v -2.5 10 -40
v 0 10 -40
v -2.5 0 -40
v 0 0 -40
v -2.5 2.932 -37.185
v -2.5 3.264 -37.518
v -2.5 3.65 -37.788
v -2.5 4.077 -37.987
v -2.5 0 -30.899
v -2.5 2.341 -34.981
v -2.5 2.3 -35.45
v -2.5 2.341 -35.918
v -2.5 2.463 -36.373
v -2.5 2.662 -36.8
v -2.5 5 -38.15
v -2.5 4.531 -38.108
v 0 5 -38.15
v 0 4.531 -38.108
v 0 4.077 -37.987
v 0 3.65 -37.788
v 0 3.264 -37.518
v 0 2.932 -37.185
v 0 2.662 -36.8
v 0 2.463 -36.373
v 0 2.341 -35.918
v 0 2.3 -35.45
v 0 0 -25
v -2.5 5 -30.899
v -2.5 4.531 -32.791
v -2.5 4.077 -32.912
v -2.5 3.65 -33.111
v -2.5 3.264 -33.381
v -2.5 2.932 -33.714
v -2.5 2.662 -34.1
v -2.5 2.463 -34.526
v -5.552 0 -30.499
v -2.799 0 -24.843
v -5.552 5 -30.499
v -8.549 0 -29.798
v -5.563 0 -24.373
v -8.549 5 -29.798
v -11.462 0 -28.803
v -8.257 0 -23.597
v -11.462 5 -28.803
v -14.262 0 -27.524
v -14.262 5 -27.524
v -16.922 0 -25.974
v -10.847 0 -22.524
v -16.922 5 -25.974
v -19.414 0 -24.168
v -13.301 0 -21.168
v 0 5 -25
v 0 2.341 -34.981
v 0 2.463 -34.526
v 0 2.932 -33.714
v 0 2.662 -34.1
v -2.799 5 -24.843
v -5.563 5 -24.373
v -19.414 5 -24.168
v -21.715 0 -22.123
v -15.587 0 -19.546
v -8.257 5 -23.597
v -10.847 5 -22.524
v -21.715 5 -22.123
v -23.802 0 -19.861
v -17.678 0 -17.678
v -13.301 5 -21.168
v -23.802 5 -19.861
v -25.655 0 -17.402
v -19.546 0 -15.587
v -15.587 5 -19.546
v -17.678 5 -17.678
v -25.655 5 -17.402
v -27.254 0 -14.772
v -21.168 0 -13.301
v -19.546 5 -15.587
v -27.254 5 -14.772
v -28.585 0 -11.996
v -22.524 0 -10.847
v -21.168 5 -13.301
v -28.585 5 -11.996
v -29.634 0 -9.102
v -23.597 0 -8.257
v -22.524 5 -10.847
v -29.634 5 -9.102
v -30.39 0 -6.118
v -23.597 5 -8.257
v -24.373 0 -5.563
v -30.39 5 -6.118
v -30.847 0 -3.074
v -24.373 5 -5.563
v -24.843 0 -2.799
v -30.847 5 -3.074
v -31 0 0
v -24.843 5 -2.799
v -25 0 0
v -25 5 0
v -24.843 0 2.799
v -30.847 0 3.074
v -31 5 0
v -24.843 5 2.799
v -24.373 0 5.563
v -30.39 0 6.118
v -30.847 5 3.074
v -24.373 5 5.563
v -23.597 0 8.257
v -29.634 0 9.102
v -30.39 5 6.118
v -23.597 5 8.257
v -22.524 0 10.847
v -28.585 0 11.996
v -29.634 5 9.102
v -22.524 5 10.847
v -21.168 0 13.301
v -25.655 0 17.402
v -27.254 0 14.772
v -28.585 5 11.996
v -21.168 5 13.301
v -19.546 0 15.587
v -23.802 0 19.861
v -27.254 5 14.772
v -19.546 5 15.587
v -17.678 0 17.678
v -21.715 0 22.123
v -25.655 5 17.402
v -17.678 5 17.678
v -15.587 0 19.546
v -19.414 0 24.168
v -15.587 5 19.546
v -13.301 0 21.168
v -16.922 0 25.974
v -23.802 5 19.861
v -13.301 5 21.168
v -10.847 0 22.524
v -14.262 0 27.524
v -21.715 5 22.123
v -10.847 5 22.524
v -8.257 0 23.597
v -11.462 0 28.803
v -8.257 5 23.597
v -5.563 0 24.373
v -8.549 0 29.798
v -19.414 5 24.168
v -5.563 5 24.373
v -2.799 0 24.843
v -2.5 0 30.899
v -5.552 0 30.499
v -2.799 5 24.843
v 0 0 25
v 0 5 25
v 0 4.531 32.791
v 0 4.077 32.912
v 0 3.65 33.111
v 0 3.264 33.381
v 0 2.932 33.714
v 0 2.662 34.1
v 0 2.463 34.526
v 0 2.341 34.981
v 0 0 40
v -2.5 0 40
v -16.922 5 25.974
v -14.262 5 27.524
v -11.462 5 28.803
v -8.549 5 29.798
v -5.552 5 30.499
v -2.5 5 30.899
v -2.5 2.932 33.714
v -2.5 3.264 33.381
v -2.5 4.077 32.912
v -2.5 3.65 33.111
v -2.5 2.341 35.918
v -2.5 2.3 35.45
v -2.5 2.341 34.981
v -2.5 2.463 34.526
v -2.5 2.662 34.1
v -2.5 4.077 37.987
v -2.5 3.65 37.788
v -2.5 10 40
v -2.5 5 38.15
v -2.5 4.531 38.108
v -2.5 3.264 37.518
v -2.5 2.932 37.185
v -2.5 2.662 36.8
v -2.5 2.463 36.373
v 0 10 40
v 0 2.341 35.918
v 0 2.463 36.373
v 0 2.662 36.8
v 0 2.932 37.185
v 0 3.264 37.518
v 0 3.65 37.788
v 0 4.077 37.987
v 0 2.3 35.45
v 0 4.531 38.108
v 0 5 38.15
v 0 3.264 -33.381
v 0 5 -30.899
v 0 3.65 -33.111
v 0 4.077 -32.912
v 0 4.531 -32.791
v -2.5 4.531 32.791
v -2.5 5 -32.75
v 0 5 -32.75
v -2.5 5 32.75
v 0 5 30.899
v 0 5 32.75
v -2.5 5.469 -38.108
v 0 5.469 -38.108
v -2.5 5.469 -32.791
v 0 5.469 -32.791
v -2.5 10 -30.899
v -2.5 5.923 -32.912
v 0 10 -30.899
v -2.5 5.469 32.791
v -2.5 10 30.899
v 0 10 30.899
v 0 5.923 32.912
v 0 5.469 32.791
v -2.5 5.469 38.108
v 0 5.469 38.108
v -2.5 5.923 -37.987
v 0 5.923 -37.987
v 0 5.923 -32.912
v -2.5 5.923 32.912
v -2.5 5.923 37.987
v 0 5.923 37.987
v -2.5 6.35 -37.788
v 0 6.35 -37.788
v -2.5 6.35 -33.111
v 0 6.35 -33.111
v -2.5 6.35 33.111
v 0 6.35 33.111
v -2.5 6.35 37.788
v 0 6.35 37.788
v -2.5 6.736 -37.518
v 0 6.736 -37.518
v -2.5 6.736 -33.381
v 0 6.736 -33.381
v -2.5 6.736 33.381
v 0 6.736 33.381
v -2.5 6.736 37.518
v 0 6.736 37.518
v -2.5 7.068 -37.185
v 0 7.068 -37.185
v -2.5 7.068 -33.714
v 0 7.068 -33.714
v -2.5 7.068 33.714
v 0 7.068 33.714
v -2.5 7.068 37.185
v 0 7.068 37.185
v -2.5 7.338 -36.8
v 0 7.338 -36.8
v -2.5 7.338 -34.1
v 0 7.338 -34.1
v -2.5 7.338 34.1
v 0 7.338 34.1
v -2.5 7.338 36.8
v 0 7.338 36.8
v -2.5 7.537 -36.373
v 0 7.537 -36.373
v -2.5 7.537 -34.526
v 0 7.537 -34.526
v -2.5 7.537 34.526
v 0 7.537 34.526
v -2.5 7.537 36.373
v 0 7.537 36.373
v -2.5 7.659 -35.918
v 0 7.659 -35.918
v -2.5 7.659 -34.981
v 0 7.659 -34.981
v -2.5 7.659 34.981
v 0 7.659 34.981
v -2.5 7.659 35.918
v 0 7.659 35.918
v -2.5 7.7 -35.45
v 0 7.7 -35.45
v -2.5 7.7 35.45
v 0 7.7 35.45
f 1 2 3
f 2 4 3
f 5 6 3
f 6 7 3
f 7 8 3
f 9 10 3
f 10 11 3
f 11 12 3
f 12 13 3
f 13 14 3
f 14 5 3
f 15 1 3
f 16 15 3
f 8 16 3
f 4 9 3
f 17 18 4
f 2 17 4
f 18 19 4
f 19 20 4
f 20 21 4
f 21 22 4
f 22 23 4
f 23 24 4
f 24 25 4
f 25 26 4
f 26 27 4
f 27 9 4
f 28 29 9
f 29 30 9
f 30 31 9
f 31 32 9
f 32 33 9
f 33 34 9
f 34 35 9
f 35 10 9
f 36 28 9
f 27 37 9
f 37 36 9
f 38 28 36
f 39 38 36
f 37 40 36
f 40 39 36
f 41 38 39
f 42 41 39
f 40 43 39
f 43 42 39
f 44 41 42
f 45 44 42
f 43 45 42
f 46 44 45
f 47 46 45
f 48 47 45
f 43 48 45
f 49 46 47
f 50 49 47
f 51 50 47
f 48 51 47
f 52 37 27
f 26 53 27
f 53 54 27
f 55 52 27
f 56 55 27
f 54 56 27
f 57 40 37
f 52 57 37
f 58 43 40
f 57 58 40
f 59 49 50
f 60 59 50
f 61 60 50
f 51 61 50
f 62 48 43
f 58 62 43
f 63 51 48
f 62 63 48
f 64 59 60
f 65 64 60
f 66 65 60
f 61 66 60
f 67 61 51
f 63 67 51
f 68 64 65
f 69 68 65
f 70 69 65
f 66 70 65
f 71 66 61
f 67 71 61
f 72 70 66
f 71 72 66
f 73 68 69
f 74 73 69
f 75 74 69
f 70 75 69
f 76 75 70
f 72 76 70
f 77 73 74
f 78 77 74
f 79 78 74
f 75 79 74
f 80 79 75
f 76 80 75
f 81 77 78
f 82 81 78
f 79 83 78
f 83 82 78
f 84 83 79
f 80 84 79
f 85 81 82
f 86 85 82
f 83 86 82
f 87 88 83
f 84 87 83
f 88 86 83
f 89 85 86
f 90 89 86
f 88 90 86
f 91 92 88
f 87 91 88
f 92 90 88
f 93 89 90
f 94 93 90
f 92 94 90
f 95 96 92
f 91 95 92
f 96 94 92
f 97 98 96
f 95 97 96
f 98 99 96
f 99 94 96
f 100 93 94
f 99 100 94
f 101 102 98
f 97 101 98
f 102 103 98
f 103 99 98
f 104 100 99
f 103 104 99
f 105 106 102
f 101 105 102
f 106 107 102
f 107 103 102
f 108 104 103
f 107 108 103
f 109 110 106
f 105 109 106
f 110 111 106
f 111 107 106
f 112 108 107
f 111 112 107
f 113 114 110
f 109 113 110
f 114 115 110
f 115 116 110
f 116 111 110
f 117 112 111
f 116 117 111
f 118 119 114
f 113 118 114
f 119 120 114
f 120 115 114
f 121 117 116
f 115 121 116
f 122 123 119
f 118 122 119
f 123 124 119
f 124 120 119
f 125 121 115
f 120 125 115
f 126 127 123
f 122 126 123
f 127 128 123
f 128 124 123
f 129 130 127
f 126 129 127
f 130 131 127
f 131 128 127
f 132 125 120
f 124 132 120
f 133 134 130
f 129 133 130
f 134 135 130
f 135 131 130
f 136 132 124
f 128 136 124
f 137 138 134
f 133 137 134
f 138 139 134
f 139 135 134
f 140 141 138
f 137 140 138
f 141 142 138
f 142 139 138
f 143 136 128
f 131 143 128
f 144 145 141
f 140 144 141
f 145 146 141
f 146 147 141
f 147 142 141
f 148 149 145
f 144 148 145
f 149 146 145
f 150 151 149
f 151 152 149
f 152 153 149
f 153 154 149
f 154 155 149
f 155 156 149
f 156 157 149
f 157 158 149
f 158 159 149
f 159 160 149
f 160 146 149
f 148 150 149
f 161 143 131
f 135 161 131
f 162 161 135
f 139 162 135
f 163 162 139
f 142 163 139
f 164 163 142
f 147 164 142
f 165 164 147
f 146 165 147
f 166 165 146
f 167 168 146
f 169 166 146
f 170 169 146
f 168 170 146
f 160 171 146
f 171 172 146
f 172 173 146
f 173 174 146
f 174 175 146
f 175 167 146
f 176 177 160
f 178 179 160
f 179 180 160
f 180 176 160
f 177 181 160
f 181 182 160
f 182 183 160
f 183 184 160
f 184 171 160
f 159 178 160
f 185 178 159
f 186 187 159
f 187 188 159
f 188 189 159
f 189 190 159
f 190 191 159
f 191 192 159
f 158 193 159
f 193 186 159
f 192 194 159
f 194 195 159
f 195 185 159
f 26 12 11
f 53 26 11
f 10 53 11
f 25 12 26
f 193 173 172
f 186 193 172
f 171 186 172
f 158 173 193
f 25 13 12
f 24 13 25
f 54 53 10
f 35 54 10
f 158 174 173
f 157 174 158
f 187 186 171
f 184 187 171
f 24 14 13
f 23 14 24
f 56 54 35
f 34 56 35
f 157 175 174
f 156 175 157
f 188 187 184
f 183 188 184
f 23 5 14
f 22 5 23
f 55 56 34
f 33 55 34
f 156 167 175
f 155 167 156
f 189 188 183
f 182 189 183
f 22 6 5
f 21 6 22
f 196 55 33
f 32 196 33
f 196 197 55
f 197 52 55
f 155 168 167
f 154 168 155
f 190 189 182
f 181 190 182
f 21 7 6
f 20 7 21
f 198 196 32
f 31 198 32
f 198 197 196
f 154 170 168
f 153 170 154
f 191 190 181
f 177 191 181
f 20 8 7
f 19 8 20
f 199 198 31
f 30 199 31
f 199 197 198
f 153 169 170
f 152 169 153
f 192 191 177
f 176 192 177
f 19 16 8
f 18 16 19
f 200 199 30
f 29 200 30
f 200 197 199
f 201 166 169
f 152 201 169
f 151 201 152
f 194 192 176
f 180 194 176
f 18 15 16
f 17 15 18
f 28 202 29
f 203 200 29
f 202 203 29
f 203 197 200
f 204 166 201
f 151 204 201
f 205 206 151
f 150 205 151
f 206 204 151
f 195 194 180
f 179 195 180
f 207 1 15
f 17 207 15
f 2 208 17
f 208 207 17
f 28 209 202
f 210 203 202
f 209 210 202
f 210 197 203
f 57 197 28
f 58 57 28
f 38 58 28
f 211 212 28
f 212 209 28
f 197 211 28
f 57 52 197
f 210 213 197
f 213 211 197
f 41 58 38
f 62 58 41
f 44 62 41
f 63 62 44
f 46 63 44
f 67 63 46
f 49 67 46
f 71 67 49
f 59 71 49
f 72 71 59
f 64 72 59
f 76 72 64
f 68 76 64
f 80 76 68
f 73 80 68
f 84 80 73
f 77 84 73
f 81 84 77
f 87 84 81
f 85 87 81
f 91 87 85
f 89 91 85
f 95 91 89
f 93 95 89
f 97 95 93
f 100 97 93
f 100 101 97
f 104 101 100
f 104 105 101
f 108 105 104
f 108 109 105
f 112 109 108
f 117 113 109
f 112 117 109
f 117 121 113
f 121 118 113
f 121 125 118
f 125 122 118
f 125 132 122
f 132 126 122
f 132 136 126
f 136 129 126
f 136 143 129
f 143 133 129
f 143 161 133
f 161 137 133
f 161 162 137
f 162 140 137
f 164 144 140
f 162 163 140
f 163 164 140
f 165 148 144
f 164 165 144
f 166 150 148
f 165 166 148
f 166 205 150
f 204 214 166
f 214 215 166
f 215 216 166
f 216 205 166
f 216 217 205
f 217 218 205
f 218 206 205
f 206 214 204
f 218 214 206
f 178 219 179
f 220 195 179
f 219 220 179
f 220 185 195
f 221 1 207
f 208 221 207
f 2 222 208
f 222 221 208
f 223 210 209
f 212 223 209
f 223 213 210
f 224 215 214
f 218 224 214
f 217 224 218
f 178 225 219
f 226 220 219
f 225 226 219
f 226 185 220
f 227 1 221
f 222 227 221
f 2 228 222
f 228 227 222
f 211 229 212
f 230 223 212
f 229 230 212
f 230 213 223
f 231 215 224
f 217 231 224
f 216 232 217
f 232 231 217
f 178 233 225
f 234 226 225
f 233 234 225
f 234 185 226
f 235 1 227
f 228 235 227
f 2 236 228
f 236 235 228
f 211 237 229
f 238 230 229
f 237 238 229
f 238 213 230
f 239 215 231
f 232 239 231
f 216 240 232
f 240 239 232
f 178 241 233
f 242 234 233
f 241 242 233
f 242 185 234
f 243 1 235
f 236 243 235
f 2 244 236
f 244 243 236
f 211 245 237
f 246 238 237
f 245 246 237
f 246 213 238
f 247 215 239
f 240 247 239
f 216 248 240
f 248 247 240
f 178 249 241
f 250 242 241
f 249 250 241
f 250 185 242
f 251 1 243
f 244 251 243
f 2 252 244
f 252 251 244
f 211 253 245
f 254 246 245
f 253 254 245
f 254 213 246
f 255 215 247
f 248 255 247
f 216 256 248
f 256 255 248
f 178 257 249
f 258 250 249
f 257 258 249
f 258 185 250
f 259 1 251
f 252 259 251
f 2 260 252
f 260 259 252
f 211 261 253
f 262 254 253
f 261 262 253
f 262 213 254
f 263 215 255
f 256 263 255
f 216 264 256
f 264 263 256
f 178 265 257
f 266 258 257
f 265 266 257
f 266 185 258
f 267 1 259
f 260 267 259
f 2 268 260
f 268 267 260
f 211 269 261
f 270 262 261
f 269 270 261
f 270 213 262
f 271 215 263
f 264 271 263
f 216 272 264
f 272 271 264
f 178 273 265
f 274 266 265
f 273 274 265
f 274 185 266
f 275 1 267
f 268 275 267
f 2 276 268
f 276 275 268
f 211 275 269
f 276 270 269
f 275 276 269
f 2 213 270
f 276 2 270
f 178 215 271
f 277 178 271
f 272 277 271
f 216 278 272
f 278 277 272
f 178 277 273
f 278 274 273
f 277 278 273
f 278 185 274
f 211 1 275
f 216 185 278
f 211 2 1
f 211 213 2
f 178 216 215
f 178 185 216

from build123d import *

# Parameters (mm, degrees)
BOSS_EXTRUDE1_DEPTH = 5
SKETCH2_W           = 2.5
SKETCH2_H           = 9.100970889
BOSS_EXTRUDE2_DEPTH = 5
CUT_EXTRUDE1_REACH  = 4.5
SKETCH3_R           = 2.7


with BuildPart() as part:
    # Sketch1 → Boss-Extrude1 (new body)
    with BuildSketch(Plane(origin=(0, 0, 0), x_dir=(1, 0, 0), z_dir=(0, 1, 0))):
        with BuildLine():
            Line((-2.5, -30.899029111), (-2.5, -24.874685928))
            ThreePointArc((-2.5, -24.874685928), (-25, 0), (-2.5, 24.874685928))
            Line((-2.5, 24.874685928), (-2.5, 30.899029111))
            ThreePointArc((-2.5, 30.899029111), (-31, 0), (-2.5, -30.899029111))
        make_face()
        with BuildLine():
            Line((0, -31), (0, -25))
            ThreePointArc((0, -25), (-1.251569376, -24.968651828), (-2.5, -24.874685928))
            Line((-2.5, -24.874685928), (-2.5, -30.899029111))
            ThreePointArc((-2.5, -30.899029111), (-1.251019097, -30.974746992), (0, -31))
        make_face()
        with BuildLine():
            Line((0, -40), (0, -31))
            ThreePointArc((0, -31), (-1.251019097, -30.974746992), (-2.5, -30.899029111))
            Line((-2.5, -30.899029111), (-2.5, -40))
            Line((-2.5, -40), (0, -40))
        make_face()
        with BuildLine():
            Line((-2.5, 30.899029111), (-2.5, 24.874685928))
            ThreePointArc((-2.5, 24.874685928), (-1.251569376, 24.968651828), (0, 25))
            Line((0, 25), (0, 31))
            ThreePointArc((0, 31), (-1.251019097, 30.974746992), (-2.5, 30.899029111))
        make_face()
        with BuildLine():
            Line((-2.5, 40), (-2.5, 30.899029111))
            ThreePointArc((-2.5, 30.899029111), (-1.251019097, 30.974746992), (0, 31))
            Line((0, 31), (0, 40))
            Line((0, 40), (-2.5, 40))
        make_face()
    extrude(amount=BOSS_EXTRUDE1_DEPTH)

    # Sketch2 → Boss-Extrude2 (add)
    with BuildSketch(Plane(origin=(0, 5, 0), x_dir=(1, 0, 0), z_dir=(0, 1, 0))):
        with Locations((-1.25, 35.449514556)):
            Rectangle(SKETCH2_W, SKETCH2_H)
        with Locations((-1.25, -35.449514556)):
            Rectangle(SKETCH2_W, SKETCH2_H)
    extrude(amount=BOSS_EXTRUDE2_DEPTH)

    # Sketch3 → Cut-Extrude1 (cut, up to next)
    with BuildSketch(Plane.ZY.offset(2.5), mode=Mode.PRIVATE) as cut_extrude1_sk1:
        with Locations((-35.449514555, 5)):
            Circle(SKETCH3_R)
    cut_extrude1_tool1 = extrude(cut_extrude1_sk1.sketch, amount=-CUT_EXTRUDE1_REACH, mode=Mode.PRIVATE) & part.part
    add(cut_extrude1_tool1.solids().sort_by_distance((-2.5, 5, -35.449515))[0], mode=Mode.SUBTRACT)
    # Sketch3 → Cut-Extrude1 (cut, up to next)
    with BuildSketch(Plane.ZY.offset(2.5), mode=Mode.PRIVATE) as cut_extrude1_sk2:
        with Locations((35.449514555, 5)):
            Circle(SKETCH3_R)
    cut_extrude1_tool2 = extrude(cut_extrude1_sk2.sketch, amount=-CUT_EXTRUDE1_REACH, mode=Mode.PRIVATE) & part.part
    add(cut_extrude1_tool2.solids().sort_by_distance((-2.5, 5, 35.449515))[0], mode=Mode.SUBTRACT)


solid = part.part
